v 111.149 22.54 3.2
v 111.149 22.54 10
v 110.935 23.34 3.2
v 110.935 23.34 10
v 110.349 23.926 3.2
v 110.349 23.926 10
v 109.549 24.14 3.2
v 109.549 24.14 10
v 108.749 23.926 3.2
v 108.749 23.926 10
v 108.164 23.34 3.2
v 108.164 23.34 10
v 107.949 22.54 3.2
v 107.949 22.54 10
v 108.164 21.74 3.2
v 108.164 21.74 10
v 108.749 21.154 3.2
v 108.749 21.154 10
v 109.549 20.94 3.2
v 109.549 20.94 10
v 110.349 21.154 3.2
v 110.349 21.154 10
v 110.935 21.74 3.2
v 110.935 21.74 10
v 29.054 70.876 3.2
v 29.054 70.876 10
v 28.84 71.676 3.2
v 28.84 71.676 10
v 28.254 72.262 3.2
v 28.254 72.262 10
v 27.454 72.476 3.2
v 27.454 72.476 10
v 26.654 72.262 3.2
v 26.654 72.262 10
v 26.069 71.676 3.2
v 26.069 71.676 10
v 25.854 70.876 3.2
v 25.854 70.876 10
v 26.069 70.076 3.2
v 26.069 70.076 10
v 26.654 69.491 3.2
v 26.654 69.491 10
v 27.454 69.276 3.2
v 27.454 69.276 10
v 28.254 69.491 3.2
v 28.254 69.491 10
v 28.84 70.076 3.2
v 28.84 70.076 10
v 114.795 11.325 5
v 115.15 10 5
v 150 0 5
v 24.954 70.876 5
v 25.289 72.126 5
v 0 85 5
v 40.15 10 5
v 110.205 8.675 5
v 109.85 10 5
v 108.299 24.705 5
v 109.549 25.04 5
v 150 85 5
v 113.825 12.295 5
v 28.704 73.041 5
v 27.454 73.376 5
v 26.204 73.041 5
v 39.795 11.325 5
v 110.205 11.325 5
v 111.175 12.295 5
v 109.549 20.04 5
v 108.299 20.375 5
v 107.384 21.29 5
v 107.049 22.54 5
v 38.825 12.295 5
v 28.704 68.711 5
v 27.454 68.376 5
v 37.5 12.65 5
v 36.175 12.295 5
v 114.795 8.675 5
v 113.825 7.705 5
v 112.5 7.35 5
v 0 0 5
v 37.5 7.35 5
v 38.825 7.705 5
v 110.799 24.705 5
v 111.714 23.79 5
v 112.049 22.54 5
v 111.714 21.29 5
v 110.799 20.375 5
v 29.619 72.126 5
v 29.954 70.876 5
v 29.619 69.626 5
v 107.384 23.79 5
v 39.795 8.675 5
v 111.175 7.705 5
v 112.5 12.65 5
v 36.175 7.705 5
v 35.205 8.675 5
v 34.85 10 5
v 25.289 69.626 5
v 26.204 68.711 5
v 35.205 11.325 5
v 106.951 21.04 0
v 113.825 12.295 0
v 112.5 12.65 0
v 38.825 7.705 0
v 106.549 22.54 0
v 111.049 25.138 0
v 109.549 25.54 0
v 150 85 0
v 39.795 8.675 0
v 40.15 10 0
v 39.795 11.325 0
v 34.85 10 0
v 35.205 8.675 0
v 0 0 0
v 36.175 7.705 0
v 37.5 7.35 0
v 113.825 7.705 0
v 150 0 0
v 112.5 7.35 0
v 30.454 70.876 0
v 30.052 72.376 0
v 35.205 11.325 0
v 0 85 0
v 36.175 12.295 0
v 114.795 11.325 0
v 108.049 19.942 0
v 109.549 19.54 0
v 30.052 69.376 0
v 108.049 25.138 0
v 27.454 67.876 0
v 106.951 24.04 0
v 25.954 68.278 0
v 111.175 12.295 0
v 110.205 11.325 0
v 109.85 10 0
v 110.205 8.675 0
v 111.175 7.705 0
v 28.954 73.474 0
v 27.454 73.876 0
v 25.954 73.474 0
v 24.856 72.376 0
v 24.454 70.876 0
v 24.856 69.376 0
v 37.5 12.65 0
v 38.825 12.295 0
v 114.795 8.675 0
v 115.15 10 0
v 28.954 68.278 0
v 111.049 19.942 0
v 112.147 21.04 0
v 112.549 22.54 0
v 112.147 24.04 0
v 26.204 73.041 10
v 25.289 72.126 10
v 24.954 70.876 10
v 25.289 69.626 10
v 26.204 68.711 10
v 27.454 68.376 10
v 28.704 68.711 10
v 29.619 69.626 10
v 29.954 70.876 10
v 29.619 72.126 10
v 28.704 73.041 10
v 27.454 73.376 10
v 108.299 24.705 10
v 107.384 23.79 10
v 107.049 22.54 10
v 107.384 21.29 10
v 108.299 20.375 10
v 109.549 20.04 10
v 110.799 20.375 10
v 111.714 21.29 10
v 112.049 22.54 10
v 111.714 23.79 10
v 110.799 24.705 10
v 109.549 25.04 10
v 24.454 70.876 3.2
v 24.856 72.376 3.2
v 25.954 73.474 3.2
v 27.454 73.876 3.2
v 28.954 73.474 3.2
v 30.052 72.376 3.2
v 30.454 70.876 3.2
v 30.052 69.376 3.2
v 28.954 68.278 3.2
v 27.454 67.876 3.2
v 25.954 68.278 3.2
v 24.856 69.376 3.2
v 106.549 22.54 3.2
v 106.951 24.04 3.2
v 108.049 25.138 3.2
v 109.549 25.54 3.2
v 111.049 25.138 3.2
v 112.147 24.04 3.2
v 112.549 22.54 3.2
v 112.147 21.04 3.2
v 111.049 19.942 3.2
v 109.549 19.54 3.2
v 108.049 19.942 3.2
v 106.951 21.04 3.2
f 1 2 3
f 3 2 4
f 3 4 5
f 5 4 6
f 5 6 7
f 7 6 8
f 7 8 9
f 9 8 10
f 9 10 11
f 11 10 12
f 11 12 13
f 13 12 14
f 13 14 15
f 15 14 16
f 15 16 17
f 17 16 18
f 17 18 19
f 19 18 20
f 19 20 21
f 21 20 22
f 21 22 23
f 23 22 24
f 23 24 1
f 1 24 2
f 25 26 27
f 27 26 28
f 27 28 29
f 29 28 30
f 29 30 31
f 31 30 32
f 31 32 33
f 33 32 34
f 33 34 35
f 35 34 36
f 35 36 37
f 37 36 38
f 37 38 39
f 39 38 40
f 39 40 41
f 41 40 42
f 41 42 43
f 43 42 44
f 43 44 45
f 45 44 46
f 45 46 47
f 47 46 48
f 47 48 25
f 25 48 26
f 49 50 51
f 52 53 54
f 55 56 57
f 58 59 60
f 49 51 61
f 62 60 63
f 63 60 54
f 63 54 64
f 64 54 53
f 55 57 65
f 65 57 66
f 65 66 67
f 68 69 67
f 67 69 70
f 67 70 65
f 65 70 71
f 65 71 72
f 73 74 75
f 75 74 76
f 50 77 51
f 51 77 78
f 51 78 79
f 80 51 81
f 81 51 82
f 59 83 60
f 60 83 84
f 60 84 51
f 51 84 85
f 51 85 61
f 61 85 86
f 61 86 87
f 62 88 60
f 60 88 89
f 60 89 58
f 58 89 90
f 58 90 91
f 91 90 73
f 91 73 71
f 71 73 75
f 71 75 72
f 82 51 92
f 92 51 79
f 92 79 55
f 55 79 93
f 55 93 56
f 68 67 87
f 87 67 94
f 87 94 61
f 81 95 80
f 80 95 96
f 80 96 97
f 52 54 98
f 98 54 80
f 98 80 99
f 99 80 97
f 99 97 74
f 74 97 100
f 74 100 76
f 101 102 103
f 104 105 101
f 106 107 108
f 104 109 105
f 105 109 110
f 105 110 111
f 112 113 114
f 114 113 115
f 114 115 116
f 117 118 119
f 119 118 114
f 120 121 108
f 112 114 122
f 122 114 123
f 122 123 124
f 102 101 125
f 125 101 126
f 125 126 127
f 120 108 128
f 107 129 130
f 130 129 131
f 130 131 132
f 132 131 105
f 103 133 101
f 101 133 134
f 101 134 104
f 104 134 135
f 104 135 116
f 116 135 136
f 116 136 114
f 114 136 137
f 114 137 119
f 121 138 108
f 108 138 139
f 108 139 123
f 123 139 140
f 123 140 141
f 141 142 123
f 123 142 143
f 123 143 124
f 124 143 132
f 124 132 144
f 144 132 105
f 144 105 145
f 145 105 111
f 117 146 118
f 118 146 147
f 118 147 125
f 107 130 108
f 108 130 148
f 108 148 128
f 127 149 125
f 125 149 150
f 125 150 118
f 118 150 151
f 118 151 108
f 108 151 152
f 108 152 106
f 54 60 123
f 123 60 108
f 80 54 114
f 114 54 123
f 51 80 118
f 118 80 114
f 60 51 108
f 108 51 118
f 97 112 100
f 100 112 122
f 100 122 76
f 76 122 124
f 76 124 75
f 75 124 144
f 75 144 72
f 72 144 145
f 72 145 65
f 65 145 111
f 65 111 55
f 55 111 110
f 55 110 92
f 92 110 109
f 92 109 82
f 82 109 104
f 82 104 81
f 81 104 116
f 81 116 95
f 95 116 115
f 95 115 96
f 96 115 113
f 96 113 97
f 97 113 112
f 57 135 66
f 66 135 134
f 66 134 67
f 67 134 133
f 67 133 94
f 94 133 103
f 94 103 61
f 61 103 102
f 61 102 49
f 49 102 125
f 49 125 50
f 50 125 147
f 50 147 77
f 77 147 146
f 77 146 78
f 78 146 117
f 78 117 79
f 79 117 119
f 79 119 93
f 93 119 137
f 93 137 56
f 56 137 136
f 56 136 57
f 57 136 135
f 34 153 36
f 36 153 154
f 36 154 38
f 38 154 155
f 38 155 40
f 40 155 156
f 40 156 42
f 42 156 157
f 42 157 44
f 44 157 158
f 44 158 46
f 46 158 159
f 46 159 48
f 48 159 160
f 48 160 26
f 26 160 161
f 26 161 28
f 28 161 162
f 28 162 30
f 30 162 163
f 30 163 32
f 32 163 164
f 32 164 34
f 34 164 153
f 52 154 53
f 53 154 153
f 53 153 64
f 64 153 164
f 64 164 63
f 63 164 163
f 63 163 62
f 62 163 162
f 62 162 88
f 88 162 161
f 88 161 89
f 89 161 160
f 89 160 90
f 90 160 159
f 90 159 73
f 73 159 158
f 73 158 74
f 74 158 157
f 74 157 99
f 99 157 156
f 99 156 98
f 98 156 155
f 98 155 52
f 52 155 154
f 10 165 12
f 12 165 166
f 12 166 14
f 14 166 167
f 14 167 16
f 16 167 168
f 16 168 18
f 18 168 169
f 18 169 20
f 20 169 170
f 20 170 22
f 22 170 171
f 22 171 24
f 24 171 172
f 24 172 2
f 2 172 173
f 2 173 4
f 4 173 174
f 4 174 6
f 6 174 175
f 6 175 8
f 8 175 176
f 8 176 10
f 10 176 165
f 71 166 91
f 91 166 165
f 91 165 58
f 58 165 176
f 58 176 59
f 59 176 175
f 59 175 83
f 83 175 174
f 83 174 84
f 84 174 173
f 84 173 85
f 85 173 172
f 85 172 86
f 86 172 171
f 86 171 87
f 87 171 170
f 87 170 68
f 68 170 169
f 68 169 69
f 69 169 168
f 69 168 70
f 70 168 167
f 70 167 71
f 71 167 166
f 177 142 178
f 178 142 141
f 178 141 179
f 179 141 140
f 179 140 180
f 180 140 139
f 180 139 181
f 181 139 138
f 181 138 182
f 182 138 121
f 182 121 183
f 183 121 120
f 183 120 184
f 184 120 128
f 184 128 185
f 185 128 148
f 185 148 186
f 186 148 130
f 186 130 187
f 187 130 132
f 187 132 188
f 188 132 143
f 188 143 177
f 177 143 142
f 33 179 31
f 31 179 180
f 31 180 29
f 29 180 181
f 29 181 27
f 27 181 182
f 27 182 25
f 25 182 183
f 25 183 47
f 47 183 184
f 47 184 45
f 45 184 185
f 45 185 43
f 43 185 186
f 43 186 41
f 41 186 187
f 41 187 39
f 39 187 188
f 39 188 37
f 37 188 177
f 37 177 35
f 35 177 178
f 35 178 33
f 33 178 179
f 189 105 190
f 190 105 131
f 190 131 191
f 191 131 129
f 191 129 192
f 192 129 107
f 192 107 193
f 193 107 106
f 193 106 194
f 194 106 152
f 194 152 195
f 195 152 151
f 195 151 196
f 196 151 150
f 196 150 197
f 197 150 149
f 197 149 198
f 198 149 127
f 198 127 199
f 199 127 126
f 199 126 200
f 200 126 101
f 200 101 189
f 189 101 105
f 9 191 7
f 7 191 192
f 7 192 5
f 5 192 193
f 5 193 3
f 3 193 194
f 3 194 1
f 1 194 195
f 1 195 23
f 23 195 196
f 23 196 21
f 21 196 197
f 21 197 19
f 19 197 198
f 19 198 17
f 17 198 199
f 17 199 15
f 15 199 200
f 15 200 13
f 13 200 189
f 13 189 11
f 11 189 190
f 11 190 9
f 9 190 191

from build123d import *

# Parameters (mm, degrees)
SKETCH1_W           = 150
SKETCH1_H           = 85
SKETCH1_R           = 2.65
BOSS_EXTRUDE1_DEPTH = 5
CUT_EXTRUDE1_DEPTH  = 5
BOSS_EXTRUDE2_START = 5
SKETCH3_R           = 2.5
SKETCH3_R_2         = 1.6
BOSS_EXTRUDE2_DEPTH = 5
SKETCH4_R           = 3
CUT_EXTRUDE2_DEPTH  = 3.2


with BuildPart() as part:
    # Sketch1 → Boss-Extrude1 (new body)
    with BuildSketch(Plane.XY):
        with Locations((75, 42.5)):
            Rectangle(SKETCH1_W, SKETCH1_H)
        with Locations((37.5, 10)):
            Circle(SKETCH1_R, mode=Mode.SUBTRACT)
        with Locations((112.5, 10)):
            Circle(SKETCH1_R, mode=Mode.SUBTRACT)
    extrude(amount=BOSS_EXTRUDE1_DEPTH)

    # Sketch2 → Cut-Extrude1 (cut)
    with BuildSketch(Plane.XY.offset(5)):
        with BuildLine():
            Line((27.4544, 72.4762), (27.4544, 70.8762))
            Line((27.4544, 70.8762), (25.8544, 70.8762))
            ThreePointArc((25.8544, 70.8762), (27.4544, 69.2762), (29.0544, 70.8762))
            ThreePointArc((29.0544, 70.8762), (28.58577085, 72.00757085), (27.4544, 72.4762))
        make_face()
        with BuildLine():
            Line((25.8544, 70.8762), (27.4544, 70.8762))
            Line((27.4544, 70.8762), (27.4544, 72.4762))
            ThreePointArc((27.4544, 72.4762), (26.32302915, 72.00757085), (25.8544, 70.8762))
        make_face()
        with BuildLine():
            Line((27.4544, 72.4762), (27.4544, 70.8762))
            Line((27.4544, 70.8762), (25.8544, 70.8762))
            ThreePointArc((25.8544, 70.8762), (27.4544, 69.2762), (29.0544, 70.8762))
            ThreePointArc((29.0544, 70.8762), (28.58577085, 72.00757085), (27.4544, 72.4762))
        make_face()
        with BuildLine():
            Line((25.8544, 70.8762), (27.4544, 70.8762))
            Line((27.4544, 70.8762), (27.4544, 72.4762))
            ThreePointArc((27.4544, 72.4762), (26.32302915, 72.00757085), (25.8544, 70.8762))
        make_face()
        with BuildLine():
            ThreePointArc((111.149409347, 22.54), (108.418038497, 23.67137085), (109.549409347, 20.94))
            Line((109.549409347, 20.94), (109.549409347, 22.54))
            Line((109.549409347, 22.54), (111.149409347, 22.54))
        make_face()
        with BuildLine():
            Line((109.549409347, 22.54), (109.549409347, 20.94))
            ThreePointArc((109.549409347, 20.94), (110.680780197, 21.40862915), (111.149409347, 22.54))
            Line((111.149409347, 22.54), (109.549409347, 22.54))
        make_face()
        with BuildLine():
            ThreePointArc((111.149409347, 22.54), (108.418038497, 23.67137085), (109.549409347, 20.94))
            Line((109.549409347, 20.94), (109.549409347, 22.54))
            Line((109.549409347, 22.54), (111.149409347, 22.54))
        make_face()
        with BuildLine():
            Line((109.549409347, 22.54), (109.549409347, 20.94))
            ThreePointArc((109.549409347, 20.94), (110.680780197, 21.40862915), (111.149409347, 22.54))
            Line((111.149409347, 22.54), (109.549409347, 22.54))
        make_face()
    extrude(amount=-CUT_EXTRUDE1_DEPTH, mode=Mode.SUBTRACT)

    # Sketch3 → Boss-Extrude2 (add)
    # profile 1 of 2: a face of its own
    with BuildSketch(Plane.XY.offset(5).offset(BOSS_EXTRUDE2_START)):
        with Locations((27.4544, 70.8762)):
            Circle(SKETCH3_R)
        with Locations((27.4544, 70.8762)):
            Circle(SKETCH3_R_2, mode=Mode.SUBTRACT)
    # profile 2 of 2: a face of its own
    with BuildSketch(Plane.XY.offset(5).offset(BOSS_EXTRUDE2_START)):
        with Locations((109.549409347, 22.54)):
            Circle(SKETCH3_R)
        with Locations((109.549409347, 22.54)):
            Circle(SKETCH3_R_2, mode=Mode.SUBTRACT)
    extrude(amount=-BOSS_EXTRUDE2_DEPTH)

    # Sketch4 → Cut-Extrude2 (cut)
    with BuildSketch(Plane(origin=(0, 0, 0), x_dir=(-1, 0, 0), z_dir=(0, 0, -1))):
        with Locations((-27.4544, 70.8762)):
            Circle(SKETCH4_R)
        with Locations((-109.549409347, 22.54)):
            Circle(SKETCH4_R)
    extrude(amount=-CUT_EXTRUDE2_DEPTH, mode=Mode.SUBTRACT)


solid = part.part
